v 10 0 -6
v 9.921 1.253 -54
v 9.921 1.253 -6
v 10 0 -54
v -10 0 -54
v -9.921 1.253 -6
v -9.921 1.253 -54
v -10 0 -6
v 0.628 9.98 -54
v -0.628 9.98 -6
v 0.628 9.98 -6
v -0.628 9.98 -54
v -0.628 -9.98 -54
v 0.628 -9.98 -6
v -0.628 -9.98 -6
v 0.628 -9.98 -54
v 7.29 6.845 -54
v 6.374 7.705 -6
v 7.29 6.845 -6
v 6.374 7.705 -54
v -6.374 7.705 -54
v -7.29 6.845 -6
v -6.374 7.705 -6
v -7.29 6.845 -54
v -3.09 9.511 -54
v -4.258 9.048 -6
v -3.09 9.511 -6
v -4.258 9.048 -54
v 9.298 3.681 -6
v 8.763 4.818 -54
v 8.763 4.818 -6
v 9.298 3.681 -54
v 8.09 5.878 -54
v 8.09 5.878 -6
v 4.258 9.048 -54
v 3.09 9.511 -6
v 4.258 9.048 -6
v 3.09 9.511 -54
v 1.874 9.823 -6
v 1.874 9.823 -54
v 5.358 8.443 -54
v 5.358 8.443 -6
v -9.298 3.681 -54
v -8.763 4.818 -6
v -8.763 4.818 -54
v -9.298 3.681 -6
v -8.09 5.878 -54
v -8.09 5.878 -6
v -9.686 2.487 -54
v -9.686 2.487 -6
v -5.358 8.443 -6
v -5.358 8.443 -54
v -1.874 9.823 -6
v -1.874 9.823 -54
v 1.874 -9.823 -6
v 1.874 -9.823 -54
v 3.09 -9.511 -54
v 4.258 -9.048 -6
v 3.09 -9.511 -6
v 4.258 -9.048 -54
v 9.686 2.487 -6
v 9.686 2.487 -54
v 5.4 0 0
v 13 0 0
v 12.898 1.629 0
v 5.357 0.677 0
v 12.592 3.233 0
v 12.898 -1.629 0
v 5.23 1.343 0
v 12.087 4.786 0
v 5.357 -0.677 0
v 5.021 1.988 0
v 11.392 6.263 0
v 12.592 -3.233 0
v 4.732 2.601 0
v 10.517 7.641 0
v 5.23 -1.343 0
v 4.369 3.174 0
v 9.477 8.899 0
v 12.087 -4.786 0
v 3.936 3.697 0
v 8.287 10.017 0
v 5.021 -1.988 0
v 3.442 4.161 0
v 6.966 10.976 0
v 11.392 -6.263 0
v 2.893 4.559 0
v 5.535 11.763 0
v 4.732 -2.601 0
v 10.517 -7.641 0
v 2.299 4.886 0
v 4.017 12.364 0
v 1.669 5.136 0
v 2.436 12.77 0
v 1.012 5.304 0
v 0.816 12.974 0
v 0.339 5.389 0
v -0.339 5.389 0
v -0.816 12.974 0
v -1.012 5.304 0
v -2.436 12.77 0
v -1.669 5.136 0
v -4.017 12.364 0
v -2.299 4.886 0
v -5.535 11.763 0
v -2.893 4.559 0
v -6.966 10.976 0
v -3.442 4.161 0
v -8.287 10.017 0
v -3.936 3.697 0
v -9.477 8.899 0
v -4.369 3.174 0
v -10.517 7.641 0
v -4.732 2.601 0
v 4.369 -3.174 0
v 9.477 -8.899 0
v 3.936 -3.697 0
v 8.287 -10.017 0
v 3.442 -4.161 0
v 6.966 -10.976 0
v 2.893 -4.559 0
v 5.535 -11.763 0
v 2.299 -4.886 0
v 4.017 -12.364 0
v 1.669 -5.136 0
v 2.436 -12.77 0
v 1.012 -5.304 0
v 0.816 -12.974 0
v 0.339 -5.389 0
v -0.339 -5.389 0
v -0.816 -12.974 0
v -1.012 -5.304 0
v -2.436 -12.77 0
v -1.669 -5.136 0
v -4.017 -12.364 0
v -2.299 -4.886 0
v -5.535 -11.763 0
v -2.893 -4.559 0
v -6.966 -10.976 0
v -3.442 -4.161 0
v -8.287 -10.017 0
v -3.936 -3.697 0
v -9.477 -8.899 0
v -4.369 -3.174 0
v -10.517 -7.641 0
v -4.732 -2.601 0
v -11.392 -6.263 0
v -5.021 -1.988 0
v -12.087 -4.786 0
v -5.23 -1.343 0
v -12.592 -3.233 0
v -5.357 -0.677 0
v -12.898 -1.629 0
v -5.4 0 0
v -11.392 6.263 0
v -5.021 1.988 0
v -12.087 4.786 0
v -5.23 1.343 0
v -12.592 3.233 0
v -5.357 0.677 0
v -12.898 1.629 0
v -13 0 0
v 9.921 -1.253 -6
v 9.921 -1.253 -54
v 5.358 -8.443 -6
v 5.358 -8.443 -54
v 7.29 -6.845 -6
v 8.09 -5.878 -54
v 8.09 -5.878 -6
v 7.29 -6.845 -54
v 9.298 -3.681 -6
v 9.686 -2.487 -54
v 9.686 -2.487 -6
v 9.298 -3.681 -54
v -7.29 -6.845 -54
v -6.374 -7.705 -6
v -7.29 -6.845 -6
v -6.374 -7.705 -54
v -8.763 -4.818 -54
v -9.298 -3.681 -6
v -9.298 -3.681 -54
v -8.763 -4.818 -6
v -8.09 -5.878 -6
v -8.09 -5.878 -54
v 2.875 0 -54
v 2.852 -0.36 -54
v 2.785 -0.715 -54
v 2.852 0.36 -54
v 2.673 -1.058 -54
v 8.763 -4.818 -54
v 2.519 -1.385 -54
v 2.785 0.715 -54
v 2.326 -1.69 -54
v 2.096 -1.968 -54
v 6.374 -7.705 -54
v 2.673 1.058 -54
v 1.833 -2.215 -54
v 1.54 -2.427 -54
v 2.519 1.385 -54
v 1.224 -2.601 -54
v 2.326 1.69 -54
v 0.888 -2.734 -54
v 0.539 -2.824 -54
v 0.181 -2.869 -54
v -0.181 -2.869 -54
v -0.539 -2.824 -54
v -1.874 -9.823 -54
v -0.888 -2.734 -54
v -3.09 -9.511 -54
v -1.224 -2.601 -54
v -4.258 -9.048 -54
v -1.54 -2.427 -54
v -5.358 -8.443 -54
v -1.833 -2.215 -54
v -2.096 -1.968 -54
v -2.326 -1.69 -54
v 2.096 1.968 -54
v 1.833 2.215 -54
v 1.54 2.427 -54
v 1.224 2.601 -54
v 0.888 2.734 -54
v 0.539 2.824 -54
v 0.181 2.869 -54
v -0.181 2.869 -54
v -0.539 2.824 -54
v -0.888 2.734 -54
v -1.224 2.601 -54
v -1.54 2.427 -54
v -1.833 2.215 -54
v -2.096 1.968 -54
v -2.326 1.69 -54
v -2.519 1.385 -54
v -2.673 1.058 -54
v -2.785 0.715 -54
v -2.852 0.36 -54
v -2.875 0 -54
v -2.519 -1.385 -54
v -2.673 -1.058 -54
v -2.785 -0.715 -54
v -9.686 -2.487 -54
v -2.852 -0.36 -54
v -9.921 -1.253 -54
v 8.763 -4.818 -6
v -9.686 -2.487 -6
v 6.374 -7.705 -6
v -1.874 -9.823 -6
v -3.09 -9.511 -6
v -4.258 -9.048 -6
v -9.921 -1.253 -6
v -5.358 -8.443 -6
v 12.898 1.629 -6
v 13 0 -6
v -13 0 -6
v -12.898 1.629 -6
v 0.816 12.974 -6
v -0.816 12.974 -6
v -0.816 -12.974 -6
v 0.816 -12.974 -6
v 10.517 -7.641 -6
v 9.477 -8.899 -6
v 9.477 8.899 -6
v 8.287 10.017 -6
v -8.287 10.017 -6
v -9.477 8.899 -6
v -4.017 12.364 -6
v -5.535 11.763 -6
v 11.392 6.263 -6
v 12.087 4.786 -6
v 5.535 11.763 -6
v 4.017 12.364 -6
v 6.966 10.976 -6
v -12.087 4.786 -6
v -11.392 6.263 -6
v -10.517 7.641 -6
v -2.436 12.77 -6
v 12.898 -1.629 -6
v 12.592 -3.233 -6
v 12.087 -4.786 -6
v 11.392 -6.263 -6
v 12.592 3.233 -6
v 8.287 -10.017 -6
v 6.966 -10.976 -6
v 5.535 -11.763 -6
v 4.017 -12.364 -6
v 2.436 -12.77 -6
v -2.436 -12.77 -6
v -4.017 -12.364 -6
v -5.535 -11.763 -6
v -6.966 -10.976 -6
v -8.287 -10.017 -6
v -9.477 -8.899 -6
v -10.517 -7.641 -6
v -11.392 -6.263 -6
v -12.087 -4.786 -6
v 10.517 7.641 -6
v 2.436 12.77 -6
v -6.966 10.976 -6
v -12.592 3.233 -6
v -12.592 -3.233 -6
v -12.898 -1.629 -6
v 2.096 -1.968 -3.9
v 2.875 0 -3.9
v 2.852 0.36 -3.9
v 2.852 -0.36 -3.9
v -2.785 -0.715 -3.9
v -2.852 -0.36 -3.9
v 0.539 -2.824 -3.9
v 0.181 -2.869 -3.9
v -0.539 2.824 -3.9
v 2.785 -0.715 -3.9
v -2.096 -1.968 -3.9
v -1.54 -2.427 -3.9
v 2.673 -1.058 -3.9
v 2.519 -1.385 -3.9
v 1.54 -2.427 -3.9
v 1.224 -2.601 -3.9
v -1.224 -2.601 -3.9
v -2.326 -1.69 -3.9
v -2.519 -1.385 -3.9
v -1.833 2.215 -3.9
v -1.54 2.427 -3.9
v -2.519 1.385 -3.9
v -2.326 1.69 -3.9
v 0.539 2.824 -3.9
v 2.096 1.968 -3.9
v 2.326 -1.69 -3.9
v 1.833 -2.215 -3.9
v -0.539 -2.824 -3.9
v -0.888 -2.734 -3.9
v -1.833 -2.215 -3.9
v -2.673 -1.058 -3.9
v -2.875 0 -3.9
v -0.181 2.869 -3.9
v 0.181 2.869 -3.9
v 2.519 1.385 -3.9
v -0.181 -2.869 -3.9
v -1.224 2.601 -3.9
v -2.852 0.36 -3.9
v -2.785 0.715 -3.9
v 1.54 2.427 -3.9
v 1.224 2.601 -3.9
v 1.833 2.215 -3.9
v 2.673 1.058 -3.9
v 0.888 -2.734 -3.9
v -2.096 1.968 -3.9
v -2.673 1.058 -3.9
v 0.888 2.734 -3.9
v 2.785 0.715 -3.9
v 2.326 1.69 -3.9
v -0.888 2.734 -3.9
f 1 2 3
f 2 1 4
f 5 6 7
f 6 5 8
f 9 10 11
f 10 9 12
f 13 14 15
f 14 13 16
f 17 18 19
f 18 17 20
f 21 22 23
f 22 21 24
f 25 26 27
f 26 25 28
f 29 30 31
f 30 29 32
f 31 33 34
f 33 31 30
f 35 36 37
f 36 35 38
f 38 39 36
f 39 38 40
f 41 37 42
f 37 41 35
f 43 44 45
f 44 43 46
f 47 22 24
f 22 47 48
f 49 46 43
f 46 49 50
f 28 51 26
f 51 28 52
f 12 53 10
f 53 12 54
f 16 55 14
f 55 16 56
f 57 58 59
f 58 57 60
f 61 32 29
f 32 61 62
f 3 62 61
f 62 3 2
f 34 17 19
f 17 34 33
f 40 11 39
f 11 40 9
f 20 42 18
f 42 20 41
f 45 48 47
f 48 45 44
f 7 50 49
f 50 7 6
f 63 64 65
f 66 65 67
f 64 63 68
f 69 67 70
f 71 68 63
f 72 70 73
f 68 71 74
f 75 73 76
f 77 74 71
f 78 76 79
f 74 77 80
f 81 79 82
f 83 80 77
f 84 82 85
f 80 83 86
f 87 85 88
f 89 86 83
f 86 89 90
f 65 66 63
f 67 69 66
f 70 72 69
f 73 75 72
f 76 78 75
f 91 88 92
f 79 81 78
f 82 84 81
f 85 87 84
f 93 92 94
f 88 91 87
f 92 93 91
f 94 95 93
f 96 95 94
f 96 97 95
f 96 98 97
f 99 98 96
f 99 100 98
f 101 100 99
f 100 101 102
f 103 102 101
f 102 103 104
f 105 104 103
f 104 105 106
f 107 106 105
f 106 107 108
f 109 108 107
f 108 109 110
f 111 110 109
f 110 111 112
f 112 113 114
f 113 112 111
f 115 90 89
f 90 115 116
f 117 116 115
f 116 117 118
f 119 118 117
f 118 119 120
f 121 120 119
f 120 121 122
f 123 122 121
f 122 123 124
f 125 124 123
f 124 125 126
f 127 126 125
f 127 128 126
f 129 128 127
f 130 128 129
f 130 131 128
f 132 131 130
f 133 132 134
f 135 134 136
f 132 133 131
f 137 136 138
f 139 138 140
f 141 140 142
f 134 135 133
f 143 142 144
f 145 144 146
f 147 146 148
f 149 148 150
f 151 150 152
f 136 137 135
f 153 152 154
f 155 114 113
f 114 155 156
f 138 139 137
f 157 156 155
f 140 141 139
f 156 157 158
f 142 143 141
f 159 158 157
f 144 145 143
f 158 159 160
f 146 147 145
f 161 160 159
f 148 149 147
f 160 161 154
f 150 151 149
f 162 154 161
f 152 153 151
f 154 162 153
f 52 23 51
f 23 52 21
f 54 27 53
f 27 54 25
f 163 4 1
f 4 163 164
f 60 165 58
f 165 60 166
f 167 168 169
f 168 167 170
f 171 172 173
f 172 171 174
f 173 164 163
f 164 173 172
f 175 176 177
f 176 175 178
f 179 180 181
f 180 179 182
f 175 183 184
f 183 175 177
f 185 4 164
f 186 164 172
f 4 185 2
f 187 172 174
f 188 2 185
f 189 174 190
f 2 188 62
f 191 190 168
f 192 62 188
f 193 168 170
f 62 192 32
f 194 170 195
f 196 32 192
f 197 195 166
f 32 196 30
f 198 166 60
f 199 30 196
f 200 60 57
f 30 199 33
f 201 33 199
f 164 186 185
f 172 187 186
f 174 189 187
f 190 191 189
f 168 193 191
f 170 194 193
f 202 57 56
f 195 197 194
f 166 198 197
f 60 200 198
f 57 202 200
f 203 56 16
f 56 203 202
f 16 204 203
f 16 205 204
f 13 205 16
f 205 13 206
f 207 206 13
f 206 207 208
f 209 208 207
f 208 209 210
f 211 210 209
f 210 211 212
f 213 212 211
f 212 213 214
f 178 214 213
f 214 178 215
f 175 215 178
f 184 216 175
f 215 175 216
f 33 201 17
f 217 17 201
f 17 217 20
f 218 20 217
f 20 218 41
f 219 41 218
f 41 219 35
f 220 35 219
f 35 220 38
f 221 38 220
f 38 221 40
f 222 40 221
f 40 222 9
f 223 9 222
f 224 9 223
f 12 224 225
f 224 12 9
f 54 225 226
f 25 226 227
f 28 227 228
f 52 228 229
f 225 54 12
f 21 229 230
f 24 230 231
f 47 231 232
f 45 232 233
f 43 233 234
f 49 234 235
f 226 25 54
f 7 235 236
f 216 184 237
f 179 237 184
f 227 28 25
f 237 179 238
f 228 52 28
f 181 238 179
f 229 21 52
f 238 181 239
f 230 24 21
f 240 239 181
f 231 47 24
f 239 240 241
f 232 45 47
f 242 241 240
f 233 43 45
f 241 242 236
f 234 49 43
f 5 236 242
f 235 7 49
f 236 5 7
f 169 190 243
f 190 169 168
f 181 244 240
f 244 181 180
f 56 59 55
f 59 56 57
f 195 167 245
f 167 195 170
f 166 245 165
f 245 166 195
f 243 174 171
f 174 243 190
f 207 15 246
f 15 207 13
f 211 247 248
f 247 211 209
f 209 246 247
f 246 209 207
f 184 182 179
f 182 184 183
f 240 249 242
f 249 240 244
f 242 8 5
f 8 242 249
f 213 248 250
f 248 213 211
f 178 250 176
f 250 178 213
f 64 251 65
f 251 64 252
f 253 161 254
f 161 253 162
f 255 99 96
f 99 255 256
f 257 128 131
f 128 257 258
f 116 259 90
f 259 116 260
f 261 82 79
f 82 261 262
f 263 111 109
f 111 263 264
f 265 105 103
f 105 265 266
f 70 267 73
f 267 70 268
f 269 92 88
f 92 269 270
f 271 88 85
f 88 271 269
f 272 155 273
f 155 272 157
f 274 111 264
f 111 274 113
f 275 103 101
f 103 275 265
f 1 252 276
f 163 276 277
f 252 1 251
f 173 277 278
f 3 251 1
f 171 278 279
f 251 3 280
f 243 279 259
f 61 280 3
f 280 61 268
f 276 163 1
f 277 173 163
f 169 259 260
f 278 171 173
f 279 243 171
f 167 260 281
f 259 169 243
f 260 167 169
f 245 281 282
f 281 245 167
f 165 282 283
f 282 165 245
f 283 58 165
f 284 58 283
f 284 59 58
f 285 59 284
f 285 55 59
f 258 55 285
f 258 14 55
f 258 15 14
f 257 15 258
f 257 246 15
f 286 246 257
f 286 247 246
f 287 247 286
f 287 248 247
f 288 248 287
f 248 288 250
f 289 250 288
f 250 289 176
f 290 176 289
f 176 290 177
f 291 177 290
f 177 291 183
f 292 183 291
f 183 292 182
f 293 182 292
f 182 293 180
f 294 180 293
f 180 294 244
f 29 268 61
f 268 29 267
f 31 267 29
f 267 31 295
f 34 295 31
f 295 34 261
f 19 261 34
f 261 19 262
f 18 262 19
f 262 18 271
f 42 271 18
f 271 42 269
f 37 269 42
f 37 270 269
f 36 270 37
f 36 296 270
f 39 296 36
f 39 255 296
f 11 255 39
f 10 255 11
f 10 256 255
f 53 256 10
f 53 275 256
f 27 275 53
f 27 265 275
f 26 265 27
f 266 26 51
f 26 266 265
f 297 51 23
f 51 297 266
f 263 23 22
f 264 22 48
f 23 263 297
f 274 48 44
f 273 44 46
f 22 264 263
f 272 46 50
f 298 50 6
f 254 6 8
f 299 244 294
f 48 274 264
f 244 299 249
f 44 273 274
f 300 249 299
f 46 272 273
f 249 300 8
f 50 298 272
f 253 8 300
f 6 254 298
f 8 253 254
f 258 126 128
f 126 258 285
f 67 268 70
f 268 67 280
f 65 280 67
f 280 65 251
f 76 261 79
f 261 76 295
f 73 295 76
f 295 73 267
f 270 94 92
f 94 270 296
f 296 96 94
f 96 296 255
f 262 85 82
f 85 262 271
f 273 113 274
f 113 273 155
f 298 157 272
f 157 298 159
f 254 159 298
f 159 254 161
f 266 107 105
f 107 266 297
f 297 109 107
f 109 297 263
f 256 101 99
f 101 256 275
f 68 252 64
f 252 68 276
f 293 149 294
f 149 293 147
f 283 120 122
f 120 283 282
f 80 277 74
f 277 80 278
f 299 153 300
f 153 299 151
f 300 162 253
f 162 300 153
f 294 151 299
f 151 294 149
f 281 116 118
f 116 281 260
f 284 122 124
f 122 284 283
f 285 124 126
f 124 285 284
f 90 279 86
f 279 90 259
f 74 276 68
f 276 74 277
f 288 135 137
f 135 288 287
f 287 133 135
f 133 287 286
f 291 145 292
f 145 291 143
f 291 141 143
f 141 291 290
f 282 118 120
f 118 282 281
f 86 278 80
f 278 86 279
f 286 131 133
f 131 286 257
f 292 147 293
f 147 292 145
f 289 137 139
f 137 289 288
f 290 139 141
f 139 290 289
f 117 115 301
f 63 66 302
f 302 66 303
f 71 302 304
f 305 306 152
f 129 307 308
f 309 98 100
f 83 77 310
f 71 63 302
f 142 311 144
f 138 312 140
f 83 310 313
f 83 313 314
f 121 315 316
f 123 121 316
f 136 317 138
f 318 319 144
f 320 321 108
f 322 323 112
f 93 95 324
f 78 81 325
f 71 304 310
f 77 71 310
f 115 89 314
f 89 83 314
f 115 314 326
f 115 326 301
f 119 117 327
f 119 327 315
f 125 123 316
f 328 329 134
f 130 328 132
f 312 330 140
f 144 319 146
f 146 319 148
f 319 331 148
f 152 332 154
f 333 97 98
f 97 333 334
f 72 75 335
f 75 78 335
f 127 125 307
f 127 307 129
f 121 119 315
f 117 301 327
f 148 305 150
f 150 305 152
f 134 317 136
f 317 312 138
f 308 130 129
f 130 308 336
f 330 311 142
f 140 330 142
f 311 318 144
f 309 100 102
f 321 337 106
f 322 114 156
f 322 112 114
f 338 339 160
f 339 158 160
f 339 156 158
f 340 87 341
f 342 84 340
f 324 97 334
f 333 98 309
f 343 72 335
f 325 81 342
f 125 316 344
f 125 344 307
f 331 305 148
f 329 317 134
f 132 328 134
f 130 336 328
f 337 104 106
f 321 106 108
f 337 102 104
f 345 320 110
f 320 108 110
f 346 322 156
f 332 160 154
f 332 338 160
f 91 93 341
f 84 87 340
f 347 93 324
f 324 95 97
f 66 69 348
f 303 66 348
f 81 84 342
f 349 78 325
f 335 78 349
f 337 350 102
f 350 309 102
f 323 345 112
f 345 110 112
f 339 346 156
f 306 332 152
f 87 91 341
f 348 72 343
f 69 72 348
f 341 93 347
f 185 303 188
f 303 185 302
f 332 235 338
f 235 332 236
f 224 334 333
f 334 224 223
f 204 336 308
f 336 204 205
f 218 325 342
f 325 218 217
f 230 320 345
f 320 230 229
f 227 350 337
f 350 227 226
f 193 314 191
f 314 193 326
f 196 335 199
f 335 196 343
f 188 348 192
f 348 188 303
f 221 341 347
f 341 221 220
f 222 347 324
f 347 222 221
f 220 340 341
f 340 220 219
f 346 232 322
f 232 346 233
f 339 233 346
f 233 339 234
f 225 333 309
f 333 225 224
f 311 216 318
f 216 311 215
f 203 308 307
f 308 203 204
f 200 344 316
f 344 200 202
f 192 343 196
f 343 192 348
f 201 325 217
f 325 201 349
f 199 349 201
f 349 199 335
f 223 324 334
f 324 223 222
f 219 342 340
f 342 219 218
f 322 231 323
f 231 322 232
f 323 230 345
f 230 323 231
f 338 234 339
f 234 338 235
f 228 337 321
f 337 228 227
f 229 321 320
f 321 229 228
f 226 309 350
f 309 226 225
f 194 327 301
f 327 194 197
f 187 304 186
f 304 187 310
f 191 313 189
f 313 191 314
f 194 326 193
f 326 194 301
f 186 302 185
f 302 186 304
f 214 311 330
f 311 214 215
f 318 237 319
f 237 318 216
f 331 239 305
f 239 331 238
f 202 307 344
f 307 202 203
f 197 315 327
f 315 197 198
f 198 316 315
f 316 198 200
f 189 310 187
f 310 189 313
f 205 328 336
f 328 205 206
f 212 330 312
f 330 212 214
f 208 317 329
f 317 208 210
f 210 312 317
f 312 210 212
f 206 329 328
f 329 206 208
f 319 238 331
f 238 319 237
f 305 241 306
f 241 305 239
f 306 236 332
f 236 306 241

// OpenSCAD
$fn = 50;


difference() {
	union() {
		translate(v = [0, 0, -54.0000000000]) {
			cylinder(h = 54, r = 10.0000000000);
		}
		translate(v = [0, 0, -6.0000000000]) {
			cylinder(h = 6, r = 13.0000000000);
		}
	}
	union() {
		translate(v = [0, 0, 0]) {
			rotate(a = [0, 0, 0]) {
				difference() {
					union() {
						#translate(v = [0, 0, -54.0000000000]) {
							cylinder(h = 54, r = 2.6000000000);
						}
						#translate(v = [0, 0, -3.9000000000]) {
							cylinder(h = 3.9000000000, r1 = 2.8750000000, r2 = 5.4000000000);
						}
						#translate(v = [0, 0, -54.0000000000]) {
							cylinder(h = 54, r = 2.8750000000);
						}
						#translate(v = [0, 0, -54.0000000000]) {
							cylinder(h = 54, r = 2.6000000000);
						}
					}
					union();
				}
			}
		}
	}
}
